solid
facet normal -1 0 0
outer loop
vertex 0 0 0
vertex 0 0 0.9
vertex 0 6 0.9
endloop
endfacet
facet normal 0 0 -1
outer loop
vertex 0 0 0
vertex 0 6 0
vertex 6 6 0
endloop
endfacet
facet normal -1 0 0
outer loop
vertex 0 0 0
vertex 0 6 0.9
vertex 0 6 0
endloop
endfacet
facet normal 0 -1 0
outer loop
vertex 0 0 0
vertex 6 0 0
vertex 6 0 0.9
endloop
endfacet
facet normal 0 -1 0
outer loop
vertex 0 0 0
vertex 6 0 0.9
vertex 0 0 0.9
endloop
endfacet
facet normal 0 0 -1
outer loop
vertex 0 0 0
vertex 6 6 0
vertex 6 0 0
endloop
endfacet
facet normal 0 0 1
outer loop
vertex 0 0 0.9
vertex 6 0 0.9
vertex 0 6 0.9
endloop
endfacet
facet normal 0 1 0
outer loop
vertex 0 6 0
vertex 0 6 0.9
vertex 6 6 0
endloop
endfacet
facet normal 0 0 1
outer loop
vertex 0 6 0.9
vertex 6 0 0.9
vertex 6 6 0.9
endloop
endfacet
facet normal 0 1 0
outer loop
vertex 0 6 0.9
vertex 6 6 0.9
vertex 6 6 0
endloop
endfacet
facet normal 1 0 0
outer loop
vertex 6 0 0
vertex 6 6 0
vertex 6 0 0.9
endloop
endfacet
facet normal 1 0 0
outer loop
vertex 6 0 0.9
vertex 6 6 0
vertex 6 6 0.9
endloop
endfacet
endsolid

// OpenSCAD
/* Warning, this is a very basic generator with a lot of approximation 
input data : [QFN, RRX, 6x6x0.9mm, 40, , B, C04-00229B]
generated by com.zoubworld.electronics.cad.model3d.Basic
Date : Sun Feb 15 10:50:48 CET 2026
*/

//body
color("black")
translate([0,0,0])
cube([6.0,6.0,0.9], center=false);
